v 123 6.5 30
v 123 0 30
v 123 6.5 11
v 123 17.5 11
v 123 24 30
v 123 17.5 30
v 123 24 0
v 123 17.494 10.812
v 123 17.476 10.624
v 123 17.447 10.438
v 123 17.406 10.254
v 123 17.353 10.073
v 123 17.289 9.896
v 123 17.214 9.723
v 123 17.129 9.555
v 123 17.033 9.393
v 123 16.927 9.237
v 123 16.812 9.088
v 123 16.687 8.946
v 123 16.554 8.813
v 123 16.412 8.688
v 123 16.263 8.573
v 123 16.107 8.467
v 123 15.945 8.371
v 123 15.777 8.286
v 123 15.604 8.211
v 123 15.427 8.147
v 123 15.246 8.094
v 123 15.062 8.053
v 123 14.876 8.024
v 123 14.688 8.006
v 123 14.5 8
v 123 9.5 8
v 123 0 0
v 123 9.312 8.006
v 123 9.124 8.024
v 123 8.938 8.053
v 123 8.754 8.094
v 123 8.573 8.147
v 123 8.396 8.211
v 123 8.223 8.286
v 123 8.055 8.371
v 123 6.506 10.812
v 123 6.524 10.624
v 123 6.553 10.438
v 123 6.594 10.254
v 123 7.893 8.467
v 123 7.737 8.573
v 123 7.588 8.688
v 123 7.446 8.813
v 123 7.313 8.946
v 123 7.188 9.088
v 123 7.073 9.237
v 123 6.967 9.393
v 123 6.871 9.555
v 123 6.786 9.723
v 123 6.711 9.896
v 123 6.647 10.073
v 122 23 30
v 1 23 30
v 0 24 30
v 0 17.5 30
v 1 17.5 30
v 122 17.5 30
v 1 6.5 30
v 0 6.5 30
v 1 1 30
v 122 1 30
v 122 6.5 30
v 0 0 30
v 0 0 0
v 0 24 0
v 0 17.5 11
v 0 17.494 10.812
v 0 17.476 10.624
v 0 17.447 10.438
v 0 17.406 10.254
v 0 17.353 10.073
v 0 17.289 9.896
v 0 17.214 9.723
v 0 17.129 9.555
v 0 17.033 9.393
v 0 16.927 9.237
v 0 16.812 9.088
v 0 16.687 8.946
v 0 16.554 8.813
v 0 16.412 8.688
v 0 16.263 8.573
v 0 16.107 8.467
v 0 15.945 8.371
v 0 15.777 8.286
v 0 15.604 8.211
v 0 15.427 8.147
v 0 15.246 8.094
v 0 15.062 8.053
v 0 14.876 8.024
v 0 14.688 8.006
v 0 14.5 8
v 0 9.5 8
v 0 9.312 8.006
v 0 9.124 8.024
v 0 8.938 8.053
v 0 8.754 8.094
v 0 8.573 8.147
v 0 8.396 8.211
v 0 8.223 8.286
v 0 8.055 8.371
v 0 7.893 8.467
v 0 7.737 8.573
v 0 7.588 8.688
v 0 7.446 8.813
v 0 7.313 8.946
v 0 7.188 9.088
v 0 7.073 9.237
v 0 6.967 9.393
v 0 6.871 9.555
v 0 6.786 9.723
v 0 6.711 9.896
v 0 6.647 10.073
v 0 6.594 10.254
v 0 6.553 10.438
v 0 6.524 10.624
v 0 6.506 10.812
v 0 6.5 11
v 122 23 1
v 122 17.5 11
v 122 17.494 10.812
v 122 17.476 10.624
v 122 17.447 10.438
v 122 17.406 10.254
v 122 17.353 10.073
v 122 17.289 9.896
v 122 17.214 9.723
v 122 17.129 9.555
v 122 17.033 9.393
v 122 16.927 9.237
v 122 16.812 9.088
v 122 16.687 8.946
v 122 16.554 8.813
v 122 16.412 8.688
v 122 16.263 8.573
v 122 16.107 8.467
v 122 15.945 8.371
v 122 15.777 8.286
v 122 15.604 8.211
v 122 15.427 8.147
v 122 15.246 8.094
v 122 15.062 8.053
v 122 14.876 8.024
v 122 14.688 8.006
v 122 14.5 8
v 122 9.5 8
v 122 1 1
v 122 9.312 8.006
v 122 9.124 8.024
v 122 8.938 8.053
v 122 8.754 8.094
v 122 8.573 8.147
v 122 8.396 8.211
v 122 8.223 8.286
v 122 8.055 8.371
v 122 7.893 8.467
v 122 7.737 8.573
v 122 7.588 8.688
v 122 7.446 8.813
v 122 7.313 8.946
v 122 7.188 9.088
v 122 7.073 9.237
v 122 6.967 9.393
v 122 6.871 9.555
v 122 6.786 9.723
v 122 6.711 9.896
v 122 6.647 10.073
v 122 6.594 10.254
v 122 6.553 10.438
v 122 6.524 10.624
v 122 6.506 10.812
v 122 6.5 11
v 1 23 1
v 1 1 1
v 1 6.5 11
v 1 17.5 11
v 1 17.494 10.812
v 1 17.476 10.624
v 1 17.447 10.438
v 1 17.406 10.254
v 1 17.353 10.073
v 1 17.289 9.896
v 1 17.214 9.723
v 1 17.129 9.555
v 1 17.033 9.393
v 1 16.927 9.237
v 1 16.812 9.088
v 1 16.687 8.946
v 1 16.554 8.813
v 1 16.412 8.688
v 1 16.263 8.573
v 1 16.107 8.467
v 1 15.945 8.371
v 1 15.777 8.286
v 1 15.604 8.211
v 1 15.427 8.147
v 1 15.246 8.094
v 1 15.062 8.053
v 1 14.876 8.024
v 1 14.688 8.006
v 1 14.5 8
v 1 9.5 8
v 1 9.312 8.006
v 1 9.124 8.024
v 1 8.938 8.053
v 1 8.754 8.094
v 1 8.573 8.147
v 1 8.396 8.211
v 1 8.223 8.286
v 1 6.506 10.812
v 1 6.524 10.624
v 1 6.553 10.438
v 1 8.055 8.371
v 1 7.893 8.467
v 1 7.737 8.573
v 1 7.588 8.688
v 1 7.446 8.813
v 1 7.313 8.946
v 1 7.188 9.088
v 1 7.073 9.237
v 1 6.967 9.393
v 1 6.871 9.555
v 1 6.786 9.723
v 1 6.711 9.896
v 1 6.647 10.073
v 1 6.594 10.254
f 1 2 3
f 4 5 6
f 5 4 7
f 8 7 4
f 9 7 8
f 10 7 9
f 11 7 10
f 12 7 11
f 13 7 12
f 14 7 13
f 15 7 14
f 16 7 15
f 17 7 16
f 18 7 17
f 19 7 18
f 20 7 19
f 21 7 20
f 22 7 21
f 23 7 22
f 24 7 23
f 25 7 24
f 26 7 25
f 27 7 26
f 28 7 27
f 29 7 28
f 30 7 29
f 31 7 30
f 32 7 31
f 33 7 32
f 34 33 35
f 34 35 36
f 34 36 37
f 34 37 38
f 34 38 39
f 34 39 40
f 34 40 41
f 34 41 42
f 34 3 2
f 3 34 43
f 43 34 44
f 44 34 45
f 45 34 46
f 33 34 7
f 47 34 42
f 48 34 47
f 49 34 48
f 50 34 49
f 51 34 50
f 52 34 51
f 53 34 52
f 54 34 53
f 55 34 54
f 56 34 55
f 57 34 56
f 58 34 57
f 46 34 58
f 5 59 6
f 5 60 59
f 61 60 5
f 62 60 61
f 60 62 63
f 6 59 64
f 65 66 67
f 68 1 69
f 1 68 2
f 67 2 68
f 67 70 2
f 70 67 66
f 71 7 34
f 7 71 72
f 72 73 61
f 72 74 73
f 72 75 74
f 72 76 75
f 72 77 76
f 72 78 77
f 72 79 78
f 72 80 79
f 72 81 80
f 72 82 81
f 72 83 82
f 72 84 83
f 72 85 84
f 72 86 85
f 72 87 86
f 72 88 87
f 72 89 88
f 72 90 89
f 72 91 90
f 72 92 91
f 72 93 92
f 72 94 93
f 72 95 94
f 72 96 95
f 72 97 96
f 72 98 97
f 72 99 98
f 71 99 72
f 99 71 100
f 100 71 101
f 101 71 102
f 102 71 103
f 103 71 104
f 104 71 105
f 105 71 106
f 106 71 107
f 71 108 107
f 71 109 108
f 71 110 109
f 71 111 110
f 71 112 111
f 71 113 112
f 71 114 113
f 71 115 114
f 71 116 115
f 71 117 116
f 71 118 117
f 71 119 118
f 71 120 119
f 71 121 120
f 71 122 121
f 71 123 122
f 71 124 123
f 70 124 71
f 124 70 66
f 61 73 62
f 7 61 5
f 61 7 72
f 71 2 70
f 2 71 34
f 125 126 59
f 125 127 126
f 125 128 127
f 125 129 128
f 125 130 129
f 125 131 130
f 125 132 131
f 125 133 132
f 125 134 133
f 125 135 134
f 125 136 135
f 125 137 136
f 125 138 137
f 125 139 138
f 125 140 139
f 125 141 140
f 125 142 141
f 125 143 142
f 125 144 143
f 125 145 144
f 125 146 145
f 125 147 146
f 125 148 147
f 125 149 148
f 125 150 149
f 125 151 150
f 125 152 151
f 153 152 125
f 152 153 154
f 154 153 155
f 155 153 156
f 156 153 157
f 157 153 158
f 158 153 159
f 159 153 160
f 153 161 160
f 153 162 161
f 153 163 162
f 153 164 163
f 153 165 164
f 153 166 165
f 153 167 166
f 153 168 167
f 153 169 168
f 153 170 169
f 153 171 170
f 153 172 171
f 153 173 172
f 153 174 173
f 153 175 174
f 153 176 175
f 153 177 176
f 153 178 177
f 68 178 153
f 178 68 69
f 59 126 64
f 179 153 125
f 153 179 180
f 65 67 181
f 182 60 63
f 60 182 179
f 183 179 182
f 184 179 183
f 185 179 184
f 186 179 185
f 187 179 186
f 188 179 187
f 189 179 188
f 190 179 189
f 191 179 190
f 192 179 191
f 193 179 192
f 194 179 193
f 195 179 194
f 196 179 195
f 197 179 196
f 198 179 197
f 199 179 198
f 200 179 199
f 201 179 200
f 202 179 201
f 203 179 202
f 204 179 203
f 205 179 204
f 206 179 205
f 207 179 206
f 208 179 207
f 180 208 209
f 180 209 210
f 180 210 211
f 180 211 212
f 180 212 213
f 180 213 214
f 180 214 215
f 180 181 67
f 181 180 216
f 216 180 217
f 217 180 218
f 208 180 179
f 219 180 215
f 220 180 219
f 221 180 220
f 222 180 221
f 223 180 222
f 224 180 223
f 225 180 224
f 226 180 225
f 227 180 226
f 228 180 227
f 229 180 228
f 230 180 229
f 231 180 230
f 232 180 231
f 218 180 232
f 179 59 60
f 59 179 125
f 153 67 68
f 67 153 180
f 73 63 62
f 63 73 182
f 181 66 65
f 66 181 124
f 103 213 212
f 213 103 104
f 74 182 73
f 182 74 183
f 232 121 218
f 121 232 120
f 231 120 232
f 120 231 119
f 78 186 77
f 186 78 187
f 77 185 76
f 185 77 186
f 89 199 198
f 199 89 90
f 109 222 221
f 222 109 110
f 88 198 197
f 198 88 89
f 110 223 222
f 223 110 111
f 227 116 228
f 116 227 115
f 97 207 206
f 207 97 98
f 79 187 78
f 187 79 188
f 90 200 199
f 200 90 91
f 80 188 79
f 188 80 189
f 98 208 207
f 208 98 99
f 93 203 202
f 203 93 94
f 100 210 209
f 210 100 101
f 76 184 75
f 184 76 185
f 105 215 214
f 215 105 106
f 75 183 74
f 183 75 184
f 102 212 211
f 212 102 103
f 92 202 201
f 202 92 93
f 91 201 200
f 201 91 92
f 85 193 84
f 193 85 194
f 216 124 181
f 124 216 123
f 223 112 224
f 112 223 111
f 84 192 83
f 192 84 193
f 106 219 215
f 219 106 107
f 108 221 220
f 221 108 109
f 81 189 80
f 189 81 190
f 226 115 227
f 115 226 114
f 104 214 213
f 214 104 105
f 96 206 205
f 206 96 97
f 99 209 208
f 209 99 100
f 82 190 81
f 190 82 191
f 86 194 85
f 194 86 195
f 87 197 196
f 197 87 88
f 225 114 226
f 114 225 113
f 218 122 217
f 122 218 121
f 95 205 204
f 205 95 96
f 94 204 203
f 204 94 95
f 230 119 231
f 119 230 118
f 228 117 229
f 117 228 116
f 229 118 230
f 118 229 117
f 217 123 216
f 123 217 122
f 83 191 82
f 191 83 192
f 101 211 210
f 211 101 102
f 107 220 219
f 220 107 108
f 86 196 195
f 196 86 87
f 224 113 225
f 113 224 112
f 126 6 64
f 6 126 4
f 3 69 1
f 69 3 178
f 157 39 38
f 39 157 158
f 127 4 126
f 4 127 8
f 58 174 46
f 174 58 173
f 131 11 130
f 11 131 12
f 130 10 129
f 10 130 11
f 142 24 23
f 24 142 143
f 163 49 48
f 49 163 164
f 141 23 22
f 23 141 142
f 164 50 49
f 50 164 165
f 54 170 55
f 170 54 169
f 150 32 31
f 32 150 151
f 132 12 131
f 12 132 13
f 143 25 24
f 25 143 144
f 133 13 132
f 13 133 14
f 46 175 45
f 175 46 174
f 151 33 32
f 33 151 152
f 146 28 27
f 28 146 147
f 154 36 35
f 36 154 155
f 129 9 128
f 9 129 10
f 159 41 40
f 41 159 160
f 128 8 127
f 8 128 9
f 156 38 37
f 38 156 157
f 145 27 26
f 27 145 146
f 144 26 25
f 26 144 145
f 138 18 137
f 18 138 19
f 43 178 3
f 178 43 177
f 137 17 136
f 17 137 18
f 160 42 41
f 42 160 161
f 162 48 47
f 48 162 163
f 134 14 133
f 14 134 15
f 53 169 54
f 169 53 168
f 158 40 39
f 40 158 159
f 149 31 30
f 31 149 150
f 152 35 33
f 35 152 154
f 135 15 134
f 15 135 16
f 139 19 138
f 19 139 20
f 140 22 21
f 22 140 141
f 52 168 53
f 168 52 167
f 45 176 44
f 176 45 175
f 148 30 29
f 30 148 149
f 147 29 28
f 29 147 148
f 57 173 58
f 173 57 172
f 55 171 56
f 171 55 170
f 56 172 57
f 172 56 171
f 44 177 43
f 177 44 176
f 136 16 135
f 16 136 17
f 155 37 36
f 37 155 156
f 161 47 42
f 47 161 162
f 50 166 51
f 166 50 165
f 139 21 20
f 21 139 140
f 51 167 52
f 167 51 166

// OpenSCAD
include <boardgame_insert_toolkit_lib.2.scad>;

// determines whether lids are output.
g_b_print_lid = true;

// determines whether boxes are output.
g_b_print_box = true; 

// Focus on one box
g_isolated_print_box = ""; 

// Used to visualize how all of the boxes fit together. 
g_b_visualization = false;          
        
// this is the outer wall thickness. 
//Default = 1.5mm
g_wall_thickness = 1.0;

// The tolerance value is extra space put between planes of the lid and box that fit together.
// Increase the tolerance to loosen the fit and decrease it to tighten it.
//
// Note that the tolerance is applied exclusively to the lid.
// So if the lid is too tight or too loose, change this value ( up for looser fit, down for tighter fit ) and 
// you only need to reprint the lid.
// 
// The exception is the stackable box, where the bottom of the box is the lid of the box below,
// in which case the tolerance also affects that box bottom.
//
g_tolerance = 0.15;

// This adjusts the position of the lid detents downward. 
// The larger the value, the bigger the gap between the lid and the box.
g_tolerance_detents_pos = 0.1;

aw_size_x = 123.0;
aw_size_y = 24.0;
aw_size_z = 30.0;


data =
  [
    [
      "simple box",
      [
        [ BOX_SIZE_XYZ, [aw_size_x, aw_size_y, aw_size_z] ],
        [ BOX_NO_LID_B, t],
        [
          BOX_COMPONENT,
          [
            [
              CMP_COMPARTMENT_SIZE_XYZ,
              [
                aw_size_x - 2 * g_wall_thickness,
                aw_size_y - 2 * g_wall_thickness,
                aw_size_z - g_wall_thickness
              ]
            ],
            [ CMP_CUTOUT_SIDES_4B, [ f, f, t, t ] ],
            [ CMP_CUTOUT_HEIGHT_PCT, 60 ],
            [ CMP_CUTOUT_DEPTH_PCT, 0 ],
            [ CMP_CUTOUT_WIDTH_PCT, 50 ],
          ]
        ],
      ]
    ]
  ];

MakeAll();
